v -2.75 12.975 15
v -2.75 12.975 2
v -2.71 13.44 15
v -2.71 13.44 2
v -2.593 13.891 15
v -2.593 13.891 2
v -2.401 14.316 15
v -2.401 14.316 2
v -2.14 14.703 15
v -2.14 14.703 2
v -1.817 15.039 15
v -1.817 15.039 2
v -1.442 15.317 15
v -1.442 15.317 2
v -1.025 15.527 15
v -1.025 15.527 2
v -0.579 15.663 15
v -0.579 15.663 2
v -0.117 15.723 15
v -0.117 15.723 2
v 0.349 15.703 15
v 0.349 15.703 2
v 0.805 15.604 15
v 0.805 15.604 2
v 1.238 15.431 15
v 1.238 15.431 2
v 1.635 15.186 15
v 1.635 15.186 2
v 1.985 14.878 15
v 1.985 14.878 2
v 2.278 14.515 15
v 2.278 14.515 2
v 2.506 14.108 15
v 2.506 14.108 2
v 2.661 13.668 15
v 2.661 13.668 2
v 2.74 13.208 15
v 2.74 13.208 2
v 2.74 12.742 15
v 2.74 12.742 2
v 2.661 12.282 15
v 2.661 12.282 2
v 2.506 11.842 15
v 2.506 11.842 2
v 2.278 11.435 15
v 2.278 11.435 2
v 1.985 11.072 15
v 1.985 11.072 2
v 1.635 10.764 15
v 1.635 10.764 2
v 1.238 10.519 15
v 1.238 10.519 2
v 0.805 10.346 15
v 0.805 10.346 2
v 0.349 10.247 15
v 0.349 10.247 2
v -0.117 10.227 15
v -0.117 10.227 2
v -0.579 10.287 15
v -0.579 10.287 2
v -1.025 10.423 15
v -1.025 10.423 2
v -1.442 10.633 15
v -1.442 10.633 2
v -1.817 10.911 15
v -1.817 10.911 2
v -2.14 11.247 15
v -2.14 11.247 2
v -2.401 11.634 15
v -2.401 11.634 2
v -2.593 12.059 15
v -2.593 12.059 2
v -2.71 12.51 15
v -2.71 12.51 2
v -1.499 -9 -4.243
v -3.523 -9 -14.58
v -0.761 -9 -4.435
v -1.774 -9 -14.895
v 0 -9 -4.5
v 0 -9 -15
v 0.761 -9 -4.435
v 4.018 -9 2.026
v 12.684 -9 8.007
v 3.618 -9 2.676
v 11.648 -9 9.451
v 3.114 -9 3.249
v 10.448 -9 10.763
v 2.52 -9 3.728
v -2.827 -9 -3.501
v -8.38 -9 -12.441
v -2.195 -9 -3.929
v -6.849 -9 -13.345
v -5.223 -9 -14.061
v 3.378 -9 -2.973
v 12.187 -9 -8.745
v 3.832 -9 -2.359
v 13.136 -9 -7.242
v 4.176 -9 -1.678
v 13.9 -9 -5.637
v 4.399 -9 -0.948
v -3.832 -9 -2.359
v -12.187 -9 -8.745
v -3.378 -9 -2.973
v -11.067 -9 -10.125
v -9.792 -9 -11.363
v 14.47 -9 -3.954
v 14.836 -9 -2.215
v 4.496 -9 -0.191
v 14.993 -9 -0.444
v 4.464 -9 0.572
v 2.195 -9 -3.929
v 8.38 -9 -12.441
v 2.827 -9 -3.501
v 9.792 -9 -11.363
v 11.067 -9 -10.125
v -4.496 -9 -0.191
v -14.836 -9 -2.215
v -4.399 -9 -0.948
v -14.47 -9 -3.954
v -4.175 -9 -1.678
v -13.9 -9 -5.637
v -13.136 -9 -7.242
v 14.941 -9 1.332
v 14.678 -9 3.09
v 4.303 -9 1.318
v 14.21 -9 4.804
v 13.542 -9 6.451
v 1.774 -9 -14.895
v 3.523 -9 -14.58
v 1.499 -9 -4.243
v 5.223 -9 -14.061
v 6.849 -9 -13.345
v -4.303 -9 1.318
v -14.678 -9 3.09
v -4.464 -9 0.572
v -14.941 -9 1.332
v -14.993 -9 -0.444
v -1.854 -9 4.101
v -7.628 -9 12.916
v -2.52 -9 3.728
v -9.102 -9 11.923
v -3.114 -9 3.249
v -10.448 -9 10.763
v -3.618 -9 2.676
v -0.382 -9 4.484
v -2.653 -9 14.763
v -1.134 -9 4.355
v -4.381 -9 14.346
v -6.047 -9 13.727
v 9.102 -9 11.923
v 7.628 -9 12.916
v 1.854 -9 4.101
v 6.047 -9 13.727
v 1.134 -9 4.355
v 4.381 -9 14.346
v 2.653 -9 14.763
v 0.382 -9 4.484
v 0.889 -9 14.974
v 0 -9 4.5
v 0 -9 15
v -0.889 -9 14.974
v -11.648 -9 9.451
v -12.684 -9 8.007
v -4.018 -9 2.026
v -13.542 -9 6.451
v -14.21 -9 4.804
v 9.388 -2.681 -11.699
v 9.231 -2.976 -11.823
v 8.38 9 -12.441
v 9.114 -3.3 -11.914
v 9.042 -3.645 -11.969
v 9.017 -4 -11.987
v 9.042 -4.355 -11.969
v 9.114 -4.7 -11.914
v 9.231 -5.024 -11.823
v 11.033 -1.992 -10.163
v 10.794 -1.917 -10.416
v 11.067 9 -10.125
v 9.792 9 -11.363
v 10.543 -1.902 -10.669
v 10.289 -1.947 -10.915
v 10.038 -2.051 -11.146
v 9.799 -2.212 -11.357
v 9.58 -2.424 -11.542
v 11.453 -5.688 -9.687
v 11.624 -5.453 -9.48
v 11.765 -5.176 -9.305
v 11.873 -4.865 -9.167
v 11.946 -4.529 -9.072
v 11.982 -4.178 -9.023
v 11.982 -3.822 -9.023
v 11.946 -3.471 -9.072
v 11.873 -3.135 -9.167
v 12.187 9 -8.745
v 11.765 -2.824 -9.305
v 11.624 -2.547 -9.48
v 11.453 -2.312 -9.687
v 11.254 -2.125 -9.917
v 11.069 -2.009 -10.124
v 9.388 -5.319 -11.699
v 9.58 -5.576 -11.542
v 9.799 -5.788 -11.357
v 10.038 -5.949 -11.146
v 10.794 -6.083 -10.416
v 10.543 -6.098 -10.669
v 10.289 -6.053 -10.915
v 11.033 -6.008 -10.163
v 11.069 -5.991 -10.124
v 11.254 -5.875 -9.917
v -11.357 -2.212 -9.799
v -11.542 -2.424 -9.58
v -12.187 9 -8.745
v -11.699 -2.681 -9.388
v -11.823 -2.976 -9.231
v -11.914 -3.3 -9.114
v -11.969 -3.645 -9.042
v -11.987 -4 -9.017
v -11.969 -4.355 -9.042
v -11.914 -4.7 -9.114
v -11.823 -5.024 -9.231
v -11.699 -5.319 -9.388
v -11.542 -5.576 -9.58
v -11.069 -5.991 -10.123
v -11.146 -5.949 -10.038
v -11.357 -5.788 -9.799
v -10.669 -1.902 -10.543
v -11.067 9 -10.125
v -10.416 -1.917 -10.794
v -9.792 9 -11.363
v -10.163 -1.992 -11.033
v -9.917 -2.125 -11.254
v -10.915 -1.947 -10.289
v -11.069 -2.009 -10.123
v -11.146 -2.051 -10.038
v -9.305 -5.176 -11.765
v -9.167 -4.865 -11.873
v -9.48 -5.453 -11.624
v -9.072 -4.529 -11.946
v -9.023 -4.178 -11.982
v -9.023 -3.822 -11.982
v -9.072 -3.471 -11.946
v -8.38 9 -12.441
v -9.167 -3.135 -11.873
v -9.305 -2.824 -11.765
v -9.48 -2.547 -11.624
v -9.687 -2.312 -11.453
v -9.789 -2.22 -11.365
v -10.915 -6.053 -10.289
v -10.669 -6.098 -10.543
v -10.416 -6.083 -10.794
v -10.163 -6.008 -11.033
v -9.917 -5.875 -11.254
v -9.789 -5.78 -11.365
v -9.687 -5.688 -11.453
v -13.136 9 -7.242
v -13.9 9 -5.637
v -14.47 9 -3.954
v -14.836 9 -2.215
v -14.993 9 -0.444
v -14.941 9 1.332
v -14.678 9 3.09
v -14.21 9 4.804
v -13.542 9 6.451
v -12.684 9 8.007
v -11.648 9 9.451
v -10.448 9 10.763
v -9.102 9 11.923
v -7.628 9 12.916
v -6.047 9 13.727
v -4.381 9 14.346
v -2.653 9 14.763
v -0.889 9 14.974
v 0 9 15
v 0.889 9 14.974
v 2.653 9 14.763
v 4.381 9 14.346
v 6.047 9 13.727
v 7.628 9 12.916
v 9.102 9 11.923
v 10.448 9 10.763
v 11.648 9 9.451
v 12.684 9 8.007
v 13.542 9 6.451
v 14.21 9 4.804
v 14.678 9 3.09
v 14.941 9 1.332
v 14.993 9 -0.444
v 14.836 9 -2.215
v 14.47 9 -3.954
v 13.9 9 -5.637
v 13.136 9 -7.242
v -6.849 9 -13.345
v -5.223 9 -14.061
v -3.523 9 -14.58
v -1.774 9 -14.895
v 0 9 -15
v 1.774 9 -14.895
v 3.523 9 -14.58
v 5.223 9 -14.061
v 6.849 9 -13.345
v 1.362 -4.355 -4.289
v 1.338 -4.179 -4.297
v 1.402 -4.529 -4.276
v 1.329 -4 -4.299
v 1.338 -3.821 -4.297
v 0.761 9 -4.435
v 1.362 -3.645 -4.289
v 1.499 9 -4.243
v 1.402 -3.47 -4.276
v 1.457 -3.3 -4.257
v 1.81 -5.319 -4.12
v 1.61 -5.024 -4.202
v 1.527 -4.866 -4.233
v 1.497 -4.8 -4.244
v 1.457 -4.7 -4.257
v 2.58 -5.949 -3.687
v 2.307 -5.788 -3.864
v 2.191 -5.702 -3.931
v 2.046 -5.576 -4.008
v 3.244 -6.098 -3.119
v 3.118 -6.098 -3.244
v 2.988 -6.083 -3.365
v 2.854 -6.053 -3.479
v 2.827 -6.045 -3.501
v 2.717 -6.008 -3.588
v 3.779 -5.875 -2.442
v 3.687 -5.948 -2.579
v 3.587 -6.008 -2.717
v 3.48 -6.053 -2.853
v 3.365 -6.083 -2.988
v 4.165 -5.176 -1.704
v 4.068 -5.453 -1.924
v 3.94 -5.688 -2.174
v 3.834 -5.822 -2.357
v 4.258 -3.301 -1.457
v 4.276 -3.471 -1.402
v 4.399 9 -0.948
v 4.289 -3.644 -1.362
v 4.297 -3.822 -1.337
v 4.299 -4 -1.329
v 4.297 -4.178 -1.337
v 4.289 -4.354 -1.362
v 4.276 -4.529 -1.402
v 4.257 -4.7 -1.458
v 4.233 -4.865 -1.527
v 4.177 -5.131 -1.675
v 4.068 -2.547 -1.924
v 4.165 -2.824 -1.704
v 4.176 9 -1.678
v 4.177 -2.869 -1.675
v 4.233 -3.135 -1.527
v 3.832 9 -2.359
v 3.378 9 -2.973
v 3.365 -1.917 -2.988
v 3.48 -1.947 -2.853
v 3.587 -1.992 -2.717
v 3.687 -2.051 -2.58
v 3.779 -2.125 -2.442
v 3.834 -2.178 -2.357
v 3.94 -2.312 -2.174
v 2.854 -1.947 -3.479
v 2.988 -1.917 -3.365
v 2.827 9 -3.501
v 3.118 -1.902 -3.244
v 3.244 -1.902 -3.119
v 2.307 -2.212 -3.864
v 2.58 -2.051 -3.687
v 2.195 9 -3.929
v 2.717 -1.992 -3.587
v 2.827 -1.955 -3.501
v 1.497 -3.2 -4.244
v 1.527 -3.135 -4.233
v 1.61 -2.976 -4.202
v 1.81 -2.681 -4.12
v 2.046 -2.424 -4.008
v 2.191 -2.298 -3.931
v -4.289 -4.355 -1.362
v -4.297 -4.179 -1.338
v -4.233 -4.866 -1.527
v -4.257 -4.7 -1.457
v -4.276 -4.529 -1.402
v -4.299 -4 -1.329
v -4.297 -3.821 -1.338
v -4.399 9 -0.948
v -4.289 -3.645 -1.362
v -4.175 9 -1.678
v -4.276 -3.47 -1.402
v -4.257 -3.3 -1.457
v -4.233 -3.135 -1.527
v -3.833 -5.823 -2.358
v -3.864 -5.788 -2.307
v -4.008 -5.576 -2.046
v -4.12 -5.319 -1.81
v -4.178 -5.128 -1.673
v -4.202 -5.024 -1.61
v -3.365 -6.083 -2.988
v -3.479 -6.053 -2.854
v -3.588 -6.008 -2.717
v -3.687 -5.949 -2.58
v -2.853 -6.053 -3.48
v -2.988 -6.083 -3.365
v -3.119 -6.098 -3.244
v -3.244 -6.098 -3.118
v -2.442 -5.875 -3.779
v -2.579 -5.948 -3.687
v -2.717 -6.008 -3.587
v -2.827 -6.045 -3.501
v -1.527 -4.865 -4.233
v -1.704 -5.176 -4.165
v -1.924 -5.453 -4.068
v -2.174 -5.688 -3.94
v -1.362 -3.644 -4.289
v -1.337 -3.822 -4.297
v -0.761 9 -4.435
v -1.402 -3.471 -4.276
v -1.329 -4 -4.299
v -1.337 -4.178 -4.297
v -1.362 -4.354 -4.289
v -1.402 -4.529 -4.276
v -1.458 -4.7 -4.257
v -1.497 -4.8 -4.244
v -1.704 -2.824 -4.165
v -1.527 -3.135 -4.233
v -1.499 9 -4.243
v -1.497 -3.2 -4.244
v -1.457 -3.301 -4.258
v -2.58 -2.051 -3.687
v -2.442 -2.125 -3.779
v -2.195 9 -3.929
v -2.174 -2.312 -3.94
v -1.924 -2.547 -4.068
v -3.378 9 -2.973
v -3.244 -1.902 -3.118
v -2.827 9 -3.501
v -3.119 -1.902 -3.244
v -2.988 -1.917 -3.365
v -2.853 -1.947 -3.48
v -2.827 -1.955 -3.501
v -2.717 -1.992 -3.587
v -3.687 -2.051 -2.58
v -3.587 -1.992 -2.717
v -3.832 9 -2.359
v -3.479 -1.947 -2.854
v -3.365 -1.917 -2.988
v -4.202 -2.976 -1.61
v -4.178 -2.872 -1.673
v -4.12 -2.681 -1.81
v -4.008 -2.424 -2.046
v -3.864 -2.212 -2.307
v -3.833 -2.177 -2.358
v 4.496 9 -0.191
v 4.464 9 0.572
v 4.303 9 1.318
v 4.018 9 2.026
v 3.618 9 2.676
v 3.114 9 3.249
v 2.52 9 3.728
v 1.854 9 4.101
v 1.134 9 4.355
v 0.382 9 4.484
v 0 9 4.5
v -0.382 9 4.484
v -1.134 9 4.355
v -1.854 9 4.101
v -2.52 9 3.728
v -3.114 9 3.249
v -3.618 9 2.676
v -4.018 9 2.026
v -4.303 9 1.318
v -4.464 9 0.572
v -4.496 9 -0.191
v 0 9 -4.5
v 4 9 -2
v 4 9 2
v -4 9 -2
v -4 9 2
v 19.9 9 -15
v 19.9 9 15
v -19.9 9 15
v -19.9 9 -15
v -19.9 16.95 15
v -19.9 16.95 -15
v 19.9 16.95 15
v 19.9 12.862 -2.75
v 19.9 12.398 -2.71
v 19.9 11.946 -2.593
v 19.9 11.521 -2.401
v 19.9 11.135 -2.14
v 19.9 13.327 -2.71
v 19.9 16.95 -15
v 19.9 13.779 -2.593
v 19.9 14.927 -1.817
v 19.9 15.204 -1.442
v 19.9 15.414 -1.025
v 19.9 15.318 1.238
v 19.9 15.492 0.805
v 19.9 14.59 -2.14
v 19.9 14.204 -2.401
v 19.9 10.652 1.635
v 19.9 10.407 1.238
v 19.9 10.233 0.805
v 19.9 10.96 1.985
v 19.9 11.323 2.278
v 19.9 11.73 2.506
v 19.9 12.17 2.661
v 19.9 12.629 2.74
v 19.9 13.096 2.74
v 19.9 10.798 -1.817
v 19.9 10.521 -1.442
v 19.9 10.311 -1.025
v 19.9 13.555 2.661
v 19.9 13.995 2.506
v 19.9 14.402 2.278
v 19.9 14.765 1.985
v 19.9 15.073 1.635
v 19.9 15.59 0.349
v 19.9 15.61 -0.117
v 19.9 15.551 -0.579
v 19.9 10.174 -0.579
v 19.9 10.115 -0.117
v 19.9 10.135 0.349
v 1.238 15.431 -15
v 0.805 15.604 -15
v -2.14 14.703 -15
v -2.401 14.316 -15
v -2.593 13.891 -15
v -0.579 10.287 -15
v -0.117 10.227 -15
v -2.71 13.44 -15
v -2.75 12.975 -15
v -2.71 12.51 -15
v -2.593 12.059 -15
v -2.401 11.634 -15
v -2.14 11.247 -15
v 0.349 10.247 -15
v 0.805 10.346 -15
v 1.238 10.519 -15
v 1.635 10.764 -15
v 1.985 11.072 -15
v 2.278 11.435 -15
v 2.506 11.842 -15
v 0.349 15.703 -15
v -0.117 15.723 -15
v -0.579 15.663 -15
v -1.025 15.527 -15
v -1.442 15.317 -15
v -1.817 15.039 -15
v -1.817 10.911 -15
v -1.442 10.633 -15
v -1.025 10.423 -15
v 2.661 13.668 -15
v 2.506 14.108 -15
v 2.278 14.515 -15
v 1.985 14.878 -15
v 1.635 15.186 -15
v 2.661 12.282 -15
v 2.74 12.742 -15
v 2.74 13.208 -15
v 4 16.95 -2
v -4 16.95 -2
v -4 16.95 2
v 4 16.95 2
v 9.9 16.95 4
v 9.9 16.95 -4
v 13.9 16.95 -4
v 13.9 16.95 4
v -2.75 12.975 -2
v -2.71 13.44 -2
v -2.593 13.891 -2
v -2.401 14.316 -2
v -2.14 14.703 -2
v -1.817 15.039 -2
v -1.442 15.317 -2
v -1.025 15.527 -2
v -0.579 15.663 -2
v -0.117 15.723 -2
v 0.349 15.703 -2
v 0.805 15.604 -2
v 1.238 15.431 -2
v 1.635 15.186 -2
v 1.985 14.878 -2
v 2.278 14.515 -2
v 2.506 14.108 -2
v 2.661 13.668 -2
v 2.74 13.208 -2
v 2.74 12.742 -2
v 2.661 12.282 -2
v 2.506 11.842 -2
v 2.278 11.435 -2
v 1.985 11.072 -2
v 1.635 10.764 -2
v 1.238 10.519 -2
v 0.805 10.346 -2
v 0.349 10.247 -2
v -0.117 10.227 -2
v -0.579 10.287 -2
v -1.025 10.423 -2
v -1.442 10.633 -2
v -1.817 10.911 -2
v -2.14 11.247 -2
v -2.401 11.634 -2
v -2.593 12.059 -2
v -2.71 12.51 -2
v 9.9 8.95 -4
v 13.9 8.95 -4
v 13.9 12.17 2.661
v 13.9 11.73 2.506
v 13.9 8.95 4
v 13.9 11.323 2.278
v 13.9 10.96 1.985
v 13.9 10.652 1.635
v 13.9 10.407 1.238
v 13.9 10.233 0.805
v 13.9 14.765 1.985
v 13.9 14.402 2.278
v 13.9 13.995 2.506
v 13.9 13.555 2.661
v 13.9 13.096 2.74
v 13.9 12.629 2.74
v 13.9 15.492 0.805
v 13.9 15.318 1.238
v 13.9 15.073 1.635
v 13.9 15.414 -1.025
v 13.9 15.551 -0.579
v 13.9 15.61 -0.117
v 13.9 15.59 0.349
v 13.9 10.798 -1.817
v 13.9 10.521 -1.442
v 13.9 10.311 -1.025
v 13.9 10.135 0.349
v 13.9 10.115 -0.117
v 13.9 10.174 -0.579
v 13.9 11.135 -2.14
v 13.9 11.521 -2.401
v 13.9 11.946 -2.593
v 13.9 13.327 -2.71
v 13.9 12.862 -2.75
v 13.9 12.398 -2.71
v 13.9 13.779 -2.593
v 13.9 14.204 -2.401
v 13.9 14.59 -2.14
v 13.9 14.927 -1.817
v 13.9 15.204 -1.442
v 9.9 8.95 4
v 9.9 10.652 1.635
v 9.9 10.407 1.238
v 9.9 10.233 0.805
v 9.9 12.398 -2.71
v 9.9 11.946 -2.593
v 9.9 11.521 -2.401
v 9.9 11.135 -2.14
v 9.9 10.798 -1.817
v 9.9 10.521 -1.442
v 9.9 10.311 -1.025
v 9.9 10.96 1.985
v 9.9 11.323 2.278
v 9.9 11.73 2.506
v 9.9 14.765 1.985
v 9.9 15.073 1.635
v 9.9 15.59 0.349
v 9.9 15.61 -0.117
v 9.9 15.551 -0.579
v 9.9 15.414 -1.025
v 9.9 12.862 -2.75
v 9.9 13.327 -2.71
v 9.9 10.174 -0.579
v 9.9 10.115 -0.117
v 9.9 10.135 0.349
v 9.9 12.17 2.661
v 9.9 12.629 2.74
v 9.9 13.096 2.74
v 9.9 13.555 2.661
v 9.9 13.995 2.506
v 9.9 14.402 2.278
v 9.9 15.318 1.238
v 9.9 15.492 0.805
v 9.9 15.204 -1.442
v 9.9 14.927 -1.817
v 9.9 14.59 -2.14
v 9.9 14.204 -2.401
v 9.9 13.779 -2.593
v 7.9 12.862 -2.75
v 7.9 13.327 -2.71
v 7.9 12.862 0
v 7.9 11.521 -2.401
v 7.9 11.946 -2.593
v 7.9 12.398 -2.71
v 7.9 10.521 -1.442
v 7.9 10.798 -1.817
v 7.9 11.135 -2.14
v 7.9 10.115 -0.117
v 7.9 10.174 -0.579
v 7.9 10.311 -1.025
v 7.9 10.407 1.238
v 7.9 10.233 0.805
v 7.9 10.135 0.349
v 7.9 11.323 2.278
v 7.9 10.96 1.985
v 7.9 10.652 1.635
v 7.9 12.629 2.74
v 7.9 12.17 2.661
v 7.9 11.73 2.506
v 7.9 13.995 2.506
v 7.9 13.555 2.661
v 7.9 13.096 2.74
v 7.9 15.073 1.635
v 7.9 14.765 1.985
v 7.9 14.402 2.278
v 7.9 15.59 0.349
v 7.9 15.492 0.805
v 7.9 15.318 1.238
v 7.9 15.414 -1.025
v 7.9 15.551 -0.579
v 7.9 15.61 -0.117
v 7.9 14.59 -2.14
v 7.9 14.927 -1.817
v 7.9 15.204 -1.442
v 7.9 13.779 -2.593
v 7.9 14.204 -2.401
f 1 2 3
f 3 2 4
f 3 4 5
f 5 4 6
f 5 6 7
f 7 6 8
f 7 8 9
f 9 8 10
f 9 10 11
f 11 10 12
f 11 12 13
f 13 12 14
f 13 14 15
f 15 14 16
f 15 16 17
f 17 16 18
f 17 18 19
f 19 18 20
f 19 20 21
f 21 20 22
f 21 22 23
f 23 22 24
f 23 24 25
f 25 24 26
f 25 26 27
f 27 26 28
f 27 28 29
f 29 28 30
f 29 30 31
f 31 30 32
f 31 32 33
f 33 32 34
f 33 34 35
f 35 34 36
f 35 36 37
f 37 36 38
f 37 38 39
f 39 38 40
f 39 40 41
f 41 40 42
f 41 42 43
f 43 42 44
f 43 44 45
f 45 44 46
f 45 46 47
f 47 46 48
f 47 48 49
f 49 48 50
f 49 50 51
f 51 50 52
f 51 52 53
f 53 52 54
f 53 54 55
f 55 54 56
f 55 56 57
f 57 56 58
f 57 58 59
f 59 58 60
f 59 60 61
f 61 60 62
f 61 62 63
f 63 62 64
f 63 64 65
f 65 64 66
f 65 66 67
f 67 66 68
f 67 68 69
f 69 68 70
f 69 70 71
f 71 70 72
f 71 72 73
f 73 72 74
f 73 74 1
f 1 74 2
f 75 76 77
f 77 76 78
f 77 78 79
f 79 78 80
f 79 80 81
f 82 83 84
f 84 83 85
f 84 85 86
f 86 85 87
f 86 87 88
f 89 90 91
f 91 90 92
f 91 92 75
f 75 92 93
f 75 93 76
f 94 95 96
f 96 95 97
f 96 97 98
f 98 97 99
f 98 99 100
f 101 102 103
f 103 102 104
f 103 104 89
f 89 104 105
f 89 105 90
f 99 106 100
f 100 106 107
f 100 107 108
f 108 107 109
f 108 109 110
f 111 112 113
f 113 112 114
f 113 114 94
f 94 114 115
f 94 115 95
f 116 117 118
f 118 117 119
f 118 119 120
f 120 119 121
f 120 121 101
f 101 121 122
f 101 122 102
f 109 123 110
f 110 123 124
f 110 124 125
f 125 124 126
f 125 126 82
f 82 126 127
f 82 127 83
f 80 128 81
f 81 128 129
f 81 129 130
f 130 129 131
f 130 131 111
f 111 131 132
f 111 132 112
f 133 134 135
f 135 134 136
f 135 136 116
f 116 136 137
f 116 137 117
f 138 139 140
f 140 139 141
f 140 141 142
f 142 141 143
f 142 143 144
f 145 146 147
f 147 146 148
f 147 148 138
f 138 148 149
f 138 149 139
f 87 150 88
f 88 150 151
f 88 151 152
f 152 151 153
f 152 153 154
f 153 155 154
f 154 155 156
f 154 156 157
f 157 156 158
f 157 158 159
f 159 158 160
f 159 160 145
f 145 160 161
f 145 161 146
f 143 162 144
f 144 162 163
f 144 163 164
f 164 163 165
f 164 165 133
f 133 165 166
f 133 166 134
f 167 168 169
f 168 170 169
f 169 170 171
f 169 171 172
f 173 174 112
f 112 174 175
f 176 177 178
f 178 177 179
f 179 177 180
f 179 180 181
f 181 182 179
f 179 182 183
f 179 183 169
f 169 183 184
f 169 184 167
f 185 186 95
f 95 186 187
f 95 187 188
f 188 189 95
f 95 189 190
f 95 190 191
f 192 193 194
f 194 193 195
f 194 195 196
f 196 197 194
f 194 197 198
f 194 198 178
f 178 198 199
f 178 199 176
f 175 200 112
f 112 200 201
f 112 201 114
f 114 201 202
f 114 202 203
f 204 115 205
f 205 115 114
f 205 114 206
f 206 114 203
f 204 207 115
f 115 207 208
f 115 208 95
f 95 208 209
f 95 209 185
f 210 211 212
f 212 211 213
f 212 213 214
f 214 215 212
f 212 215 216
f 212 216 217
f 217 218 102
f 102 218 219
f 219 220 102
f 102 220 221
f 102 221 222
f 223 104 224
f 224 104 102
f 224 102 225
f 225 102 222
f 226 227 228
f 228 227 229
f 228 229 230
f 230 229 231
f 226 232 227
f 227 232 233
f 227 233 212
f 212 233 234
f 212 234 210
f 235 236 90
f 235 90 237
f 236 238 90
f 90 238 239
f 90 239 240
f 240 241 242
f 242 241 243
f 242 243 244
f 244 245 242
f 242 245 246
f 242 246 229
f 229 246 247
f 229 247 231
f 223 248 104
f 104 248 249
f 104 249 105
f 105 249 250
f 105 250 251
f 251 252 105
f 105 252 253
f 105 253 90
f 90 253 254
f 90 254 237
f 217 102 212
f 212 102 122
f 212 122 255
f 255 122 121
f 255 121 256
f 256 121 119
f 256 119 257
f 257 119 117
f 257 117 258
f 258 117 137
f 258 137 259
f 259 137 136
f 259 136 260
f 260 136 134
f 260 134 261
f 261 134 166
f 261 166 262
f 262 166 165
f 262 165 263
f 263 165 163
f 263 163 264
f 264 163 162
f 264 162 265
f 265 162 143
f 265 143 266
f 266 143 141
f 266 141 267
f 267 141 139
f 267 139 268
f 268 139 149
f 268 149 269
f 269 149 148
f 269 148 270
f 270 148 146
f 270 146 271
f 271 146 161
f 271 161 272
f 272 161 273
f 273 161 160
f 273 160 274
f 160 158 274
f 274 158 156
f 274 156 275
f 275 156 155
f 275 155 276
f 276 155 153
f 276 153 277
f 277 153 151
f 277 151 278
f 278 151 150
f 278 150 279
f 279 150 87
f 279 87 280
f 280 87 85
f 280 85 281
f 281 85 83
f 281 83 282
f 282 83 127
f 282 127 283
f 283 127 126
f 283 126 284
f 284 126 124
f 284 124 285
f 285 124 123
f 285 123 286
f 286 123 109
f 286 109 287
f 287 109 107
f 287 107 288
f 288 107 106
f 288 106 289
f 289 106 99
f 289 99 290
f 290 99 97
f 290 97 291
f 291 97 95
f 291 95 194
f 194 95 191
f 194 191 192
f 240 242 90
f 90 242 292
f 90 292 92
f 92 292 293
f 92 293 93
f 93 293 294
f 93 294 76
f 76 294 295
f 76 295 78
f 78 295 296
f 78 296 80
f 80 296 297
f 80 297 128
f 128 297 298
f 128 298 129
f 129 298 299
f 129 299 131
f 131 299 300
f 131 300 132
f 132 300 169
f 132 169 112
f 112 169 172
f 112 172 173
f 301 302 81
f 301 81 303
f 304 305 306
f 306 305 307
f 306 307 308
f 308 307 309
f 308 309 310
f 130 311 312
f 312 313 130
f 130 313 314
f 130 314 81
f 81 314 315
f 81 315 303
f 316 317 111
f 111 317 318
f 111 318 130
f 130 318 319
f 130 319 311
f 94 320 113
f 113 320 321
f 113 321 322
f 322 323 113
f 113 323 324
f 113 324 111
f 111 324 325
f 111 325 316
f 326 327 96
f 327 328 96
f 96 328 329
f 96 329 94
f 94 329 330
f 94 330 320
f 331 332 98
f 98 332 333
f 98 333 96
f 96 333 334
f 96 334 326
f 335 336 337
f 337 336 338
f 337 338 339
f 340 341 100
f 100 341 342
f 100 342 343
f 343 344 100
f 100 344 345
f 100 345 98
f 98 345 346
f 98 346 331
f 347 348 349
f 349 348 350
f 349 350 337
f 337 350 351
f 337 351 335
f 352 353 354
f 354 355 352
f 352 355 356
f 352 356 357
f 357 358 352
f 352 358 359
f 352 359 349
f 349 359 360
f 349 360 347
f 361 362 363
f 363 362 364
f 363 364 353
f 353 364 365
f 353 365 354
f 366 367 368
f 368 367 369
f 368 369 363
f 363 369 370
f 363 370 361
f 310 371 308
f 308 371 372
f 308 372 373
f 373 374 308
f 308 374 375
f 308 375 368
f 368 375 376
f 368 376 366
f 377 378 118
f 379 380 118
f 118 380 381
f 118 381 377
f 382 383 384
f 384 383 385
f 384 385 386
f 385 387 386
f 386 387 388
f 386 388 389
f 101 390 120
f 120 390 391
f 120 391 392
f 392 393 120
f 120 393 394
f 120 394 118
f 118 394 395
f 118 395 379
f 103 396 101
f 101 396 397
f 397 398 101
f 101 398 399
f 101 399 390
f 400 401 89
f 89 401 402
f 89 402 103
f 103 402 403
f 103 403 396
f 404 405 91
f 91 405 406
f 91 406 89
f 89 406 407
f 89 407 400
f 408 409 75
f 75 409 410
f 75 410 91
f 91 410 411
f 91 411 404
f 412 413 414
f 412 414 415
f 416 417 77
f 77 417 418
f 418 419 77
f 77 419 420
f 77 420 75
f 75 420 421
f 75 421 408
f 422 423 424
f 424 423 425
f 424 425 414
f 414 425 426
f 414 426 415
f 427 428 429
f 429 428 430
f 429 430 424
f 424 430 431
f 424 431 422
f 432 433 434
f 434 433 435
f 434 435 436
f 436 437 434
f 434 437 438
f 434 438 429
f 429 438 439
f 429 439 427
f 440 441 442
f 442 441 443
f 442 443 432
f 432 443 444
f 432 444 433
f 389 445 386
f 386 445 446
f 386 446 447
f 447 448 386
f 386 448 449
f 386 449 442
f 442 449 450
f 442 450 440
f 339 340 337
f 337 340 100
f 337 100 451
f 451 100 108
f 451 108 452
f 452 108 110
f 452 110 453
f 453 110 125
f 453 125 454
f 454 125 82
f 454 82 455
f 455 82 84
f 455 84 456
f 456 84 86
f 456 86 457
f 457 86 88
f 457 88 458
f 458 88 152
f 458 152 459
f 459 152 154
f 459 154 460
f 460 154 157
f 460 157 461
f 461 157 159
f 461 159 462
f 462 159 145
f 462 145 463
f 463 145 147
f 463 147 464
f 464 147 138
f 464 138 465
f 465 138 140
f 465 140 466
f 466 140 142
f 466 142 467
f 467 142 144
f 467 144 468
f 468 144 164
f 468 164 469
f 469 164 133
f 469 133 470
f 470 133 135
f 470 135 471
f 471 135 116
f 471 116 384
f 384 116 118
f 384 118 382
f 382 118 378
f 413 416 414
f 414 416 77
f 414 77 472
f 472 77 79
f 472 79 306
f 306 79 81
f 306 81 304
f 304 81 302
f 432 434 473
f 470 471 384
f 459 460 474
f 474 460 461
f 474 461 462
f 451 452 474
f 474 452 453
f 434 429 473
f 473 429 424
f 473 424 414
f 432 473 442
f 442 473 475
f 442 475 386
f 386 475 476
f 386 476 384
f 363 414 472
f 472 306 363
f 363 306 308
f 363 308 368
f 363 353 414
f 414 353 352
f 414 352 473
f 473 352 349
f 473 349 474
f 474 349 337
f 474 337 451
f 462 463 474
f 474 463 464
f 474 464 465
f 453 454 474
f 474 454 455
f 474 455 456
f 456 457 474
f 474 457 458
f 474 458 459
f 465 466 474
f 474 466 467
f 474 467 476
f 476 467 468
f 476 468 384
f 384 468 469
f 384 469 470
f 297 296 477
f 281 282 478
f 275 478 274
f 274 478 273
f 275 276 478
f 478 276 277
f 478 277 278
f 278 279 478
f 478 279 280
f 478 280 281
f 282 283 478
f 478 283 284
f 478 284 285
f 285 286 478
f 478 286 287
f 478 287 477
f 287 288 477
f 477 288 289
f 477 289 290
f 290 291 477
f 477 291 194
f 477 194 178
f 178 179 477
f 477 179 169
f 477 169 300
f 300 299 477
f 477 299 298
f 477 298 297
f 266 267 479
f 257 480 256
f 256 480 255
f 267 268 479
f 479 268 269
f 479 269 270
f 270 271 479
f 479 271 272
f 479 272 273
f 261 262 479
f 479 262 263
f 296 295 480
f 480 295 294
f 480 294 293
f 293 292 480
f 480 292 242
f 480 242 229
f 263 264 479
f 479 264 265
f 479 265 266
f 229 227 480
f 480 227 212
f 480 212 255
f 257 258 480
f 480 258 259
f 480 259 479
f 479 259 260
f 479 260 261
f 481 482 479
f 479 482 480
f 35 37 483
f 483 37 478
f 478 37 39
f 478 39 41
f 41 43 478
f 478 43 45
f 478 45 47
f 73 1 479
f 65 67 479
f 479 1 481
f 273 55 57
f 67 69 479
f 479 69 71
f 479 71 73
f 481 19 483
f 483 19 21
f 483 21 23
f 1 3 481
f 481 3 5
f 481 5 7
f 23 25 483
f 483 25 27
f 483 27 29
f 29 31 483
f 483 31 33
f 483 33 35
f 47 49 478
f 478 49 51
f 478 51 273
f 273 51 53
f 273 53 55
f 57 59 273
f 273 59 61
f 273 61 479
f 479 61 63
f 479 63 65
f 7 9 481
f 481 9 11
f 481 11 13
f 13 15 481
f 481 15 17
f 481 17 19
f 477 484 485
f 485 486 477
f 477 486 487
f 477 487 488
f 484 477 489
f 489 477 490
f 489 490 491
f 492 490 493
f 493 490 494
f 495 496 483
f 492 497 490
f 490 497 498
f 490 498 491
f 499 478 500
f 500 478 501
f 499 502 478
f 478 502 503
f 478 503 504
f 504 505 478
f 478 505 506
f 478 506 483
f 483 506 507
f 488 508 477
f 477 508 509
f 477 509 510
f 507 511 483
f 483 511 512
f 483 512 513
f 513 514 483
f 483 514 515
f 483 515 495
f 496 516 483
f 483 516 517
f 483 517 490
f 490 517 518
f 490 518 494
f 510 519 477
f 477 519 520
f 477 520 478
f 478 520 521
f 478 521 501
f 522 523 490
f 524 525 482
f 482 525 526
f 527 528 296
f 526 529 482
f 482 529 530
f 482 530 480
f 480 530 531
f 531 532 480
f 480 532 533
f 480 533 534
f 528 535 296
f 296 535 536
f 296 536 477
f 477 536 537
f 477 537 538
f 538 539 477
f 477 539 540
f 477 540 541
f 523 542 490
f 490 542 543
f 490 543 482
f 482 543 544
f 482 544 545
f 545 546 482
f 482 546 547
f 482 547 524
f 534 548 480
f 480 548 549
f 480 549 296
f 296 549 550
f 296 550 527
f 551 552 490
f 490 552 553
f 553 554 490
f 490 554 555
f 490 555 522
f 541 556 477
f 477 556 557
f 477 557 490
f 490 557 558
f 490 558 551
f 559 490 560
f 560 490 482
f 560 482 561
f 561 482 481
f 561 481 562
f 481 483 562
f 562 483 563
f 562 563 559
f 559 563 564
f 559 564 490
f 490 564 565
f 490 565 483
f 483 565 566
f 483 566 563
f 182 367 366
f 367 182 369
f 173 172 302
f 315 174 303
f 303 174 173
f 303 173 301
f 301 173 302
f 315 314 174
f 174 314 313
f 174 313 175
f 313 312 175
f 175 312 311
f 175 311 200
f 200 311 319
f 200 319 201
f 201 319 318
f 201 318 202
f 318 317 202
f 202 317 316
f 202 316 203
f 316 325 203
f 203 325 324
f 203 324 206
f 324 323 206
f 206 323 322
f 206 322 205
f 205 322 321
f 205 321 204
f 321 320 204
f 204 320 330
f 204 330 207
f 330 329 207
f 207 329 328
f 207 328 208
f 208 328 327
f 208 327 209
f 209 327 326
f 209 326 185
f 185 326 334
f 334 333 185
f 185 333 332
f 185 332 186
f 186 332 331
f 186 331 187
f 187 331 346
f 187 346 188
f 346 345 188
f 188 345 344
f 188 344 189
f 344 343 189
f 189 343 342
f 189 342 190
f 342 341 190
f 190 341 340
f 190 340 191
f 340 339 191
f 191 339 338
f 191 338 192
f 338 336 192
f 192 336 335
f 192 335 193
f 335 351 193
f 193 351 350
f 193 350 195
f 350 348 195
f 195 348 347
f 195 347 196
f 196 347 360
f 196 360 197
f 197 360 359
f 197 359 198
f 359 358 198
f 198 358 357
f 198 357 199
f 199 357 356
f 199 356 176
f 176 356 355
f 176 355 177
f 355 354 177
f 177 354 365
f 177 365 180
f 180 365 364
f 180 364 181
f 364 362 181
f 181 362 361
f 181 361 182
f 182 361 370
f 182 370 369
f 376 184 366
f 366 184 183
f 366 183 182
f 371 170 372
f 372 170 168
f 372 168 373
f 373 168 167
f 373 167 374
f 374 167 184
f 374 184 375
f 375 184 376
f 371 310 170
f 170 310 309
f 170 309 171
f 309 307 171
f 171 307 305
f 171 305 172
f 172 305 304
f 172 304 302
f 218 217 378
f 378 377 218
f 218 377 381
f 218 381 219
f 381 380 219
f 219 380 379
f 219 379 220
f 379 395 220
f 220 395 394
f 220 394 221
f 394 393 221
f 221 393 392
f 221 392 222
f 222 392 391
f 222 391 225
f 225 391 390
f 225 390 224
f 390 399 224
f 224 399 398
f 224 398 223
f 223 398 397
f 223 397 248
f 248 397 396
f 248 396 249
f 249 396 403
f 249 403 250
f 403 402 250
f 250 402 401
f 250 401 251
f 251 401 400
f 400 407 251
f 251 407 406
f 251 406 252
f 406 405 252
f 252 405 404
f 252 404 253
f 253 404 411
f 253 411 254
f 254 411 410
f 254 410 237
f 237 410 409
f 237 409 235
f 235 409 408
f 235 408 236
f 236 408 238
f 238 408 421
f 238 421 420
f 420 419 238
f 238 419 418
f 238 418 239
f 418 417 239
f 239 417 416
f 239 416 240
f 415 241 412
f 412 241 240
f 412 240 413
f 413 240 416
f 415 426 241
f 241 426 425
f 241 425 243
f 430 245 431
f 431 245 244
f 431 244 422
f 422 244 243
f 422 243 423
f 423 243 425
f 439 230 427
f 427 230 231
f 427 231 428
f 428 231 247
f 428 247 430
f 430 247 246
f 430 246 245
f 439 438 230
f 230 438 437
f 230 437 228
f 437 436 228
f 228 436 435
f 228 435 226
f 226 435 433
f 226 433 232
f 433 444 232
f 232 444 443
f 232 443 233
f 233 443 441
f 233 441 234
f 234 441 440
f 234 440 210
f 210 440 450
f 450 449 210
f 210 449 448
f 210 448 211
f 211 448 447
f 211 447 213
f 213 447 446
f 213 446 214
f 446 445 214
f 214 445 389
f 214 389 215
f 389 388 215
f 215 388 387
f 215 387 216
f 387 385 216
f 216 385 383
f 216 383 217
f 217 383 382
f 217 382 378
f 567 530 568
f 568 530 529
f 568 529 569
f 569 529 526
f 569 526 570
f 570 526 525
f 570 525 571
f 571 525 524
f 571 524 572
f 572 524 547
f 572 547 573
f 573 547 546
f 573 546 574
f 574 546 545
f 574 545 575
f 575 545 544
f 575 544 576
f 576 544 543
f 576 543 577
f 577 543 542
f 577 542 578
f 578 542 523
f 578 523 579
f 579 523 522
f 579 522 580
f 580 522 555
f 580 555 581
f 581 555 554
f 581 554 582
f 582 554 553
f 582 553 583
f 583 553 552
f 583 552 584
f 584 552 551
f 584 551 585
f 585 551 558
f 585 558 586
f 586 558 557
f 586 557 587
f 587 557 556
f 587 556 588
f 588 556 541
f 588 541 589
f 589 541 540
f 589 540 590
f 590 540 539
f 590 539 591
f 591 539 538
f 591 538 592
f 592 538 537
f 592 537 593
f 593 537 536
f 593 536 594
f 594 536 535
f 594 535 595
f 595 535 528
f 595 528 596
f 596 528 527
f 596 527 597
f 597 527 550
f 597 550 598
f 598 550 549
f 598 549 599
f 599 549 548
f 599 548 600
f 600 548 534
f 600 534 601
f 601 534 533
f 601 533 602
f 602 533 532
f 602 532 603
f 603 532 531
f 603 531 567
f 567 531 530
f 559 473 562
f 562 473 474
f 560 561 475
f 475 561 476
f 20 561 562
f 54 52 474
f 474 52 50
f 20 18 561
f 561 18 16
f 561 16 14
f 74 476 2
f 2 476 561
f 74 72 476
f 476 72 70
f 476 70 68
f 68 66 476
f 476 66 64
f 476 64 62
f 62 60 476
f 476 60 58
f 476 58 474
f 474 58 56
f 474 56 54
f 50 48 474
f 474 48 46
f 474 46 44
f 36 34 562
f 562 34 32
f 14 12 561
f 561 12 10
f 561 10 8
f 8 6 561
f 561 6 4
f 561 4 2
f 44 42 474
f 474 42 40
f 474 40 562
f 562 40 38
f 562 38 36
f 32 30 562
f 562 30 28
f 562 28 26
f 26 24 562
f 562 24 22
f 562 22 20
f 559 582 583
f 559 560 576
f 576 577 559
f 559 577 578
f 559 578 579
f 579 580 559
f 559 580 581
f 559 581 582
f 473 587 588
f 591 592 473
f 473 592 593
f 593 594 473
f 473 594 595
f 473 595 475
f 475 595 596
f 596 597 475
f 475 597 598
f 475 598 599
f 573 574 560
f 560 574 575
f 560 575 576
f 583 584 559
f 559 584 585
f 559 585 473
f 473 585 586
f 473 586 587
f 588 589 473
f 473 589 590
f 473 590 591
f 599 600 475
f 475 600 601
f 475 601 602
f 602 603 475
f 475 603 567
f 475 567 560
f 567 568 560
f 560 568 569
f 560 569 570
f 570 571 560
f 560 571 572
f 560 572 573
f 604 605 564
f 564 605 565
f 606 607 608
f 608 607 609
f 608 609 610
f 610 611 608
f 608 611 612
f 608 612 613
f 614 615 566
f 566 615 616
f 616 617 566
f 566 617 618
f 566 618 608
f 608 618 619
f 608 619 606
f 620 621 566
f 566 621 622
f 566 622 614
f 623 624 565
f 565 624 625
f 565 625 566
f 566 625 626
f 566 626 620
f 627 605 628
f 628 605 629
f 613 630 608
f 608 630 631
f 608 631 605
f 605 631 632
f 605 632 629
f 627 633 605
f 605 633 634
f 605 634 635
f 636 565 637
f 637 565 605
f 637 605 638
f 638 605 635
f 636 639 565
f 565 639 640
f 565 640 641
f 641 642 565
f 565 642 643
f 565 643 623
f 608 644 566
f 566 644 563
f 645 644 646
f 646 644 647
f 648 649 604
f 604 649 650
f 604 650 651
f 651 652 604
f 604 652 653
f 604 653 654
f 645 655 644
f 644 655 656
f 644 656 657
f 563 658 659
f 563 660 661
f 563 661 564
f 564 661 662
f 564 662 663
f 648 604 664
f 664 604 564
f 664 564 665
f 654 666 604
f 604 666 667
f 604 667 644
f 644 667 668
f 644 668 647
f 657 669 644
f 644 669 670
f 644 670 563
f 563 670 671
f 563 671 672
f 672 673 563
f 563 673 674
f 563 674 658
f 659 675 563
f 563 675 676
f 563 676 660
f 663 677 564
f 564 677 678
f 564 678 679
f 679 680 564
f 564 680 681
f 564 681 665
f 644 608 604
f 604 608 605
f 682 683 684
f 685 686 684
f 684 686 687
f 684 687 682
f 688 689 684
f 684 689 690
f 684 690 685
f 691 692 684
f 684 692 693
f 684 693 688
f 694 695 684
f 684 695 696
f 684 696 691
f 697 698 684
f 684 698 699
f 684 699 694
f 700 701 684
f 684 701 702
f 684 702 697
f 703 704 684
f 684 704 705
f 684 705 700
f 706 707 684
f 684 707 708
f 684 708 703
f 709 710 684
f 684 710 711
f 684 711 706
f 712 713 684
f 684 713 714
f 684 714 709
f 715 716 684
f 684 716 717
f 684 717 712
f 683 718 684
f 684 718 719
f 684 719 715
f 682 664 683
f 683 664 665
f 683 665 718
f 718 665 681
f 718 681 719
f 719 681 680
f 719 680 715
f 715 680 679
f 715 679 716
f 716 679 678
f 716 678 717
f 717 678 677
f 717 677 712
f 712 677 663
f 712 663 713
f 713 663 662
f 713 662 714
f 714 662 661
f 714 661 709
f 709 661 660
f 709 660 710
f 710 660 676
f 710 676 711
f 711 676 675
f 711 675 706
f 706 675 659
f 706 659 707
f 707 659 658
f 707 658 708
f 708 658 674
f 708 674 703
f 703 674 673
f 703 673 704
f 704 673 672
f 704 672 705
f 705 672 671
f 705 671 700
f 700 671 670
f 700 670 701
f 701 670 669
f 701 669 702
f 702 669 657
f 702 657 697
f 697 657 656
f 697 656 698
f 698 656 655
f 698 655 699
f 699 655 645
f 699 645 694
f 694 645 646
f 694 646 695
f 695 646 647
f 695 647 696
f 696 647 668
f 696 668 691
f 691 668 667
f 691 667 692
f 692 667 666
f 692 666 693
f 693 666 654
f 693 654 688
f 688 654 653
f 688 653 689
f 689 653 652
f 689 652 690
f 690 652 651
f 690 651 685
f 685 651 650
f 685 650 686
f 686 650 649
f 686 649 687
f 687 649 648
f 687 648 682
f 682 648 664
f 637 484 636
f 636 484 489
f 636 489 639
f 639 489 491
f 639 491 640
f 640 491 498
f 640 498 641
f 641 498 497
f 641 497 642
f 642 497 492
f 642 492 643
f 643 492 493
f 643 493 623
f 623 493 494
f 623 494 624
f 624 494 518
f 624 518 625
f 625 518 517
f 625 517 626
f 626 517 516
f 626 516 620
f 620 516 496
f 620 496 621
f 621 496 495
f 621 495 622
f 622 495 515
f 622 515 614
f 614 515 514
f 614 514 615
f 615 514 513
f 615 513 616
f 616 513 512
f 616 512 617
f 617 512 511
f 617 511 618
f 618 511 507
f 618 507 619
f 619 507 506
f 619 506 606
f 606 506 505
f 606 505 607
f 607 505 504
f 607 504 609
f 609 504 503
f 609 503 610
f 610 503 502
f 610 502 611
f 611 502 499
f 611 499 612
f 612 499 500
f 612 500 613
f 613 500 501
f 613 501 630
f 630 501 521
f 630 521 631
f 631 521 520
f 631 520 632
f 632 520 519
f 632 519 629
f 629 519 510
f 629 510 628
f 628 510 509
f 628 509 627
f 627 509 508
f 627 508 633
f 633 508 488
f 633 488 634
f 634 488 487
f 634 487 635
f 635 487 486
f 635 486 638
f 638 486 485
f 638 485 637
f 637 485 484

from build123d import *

# Parameters (mm, degrees)
SKETCH1_R              = 15
SKETCH1_R_2            = 4.5
BOSS_EXTRUDE1_DEPTH    = 9
SKETCH2_W              = 39.8
SKETCH2_H              = 30
BOSS_EXTRUDE2_DEPTH    = 7.95
M5_TAPPED_HOLE1_REACH  = 45.286
M5_TAPPED_HOLE1_BORE_R = 2.1
M5_TAPPED_HOLE2_REACH  = 45.286
M5_TAPPED_HOLE2_BORE_R = 2.1
SKETCH3_R              = 2.75
CUT_EXTRUDE1_DEPTH     = 40.790859579
SKETCH35_W             = 8
SKETCH35_H             = 4
SKETCH35_W_2           = 4
SKETCH35_H_2           = 8
CUT_EXTRUDE4_DEPTH     = 8
SKETCH40_R             = 2.75
CUT_EXTRUDE5_DEPTH     = 12


with BuildPart() as part:
    # Sketch1 → Boss-Extrude1 (new, symmetric)
    with BuildSketch(Plane(origin=(0, 0, 0), x_dir=(1, 0, 0), z_dir=(0, 1, 0))):
        with Locations(Location((0, 0, 0), (0, 0, 270))):
            Circle(SKETCH1_R)
        with Locations(Location((0, 0, 0), (0, 0, 270))):
            Circle(SKETCH1_R_2, mode=Mode.SUBTRACT)
    extrude(amount=BOSS_EXTRUDE1_DEPTH, both=True)

    # Sketch2 → Boss-Extrude2 (add)
    with BuildSketch(Plane(origin=(0, 9, 0), x_dir=(1, 0, 0), z_dir=(0, 1, 0))):
        Rectangle(SKETCH2_W, SKETCH2_H)
    extrude(amount=BOSS_EXTRUDE2_DEPTH)

    # M5 Tapped Hole1 bore → M5 Tapped Hole1 (cut, up to next)
    with BuildSketch(Plane(origin=(10.606601718, 0, -10.606601718), x_dir=(-0.7071067811865476, 0, -0.7071067811865476), z_dir=(0.7071067811865476, 0, -0.7071067811865476)), mode=Mode.PRIVATE) as m5_tapped_hole1_sk1:
        with Locations((0, -4)):
            Circle(M5_TAPPED_HOLE1_BORE_R)
    m5_tapped_hole1_tool1 = extrude(m5_tapped_hole1_sk1.sketch, amount=-M5_TAPPED_HOLE1_REACH, mode=Mode.PRIVATE) & part.part
    add(m5_tapped_hole1_tool1.solids().sort_by_distance((10.606602, -4, -10.606602))[0], mode=Mode.SUBTRACT)

    # M5 Tapped Hole2 bore → M5 Tapped Hole2 (cut, up to next)
    with BuildSketch(Plane(origin=(-10.606601718, 0, -10.606601718), x_dir=(-0.7071067811865476, 0, 0.7071067811865476), z_dir=(-0.7071067811865476, 0, -0.7071067811865476)), mode=Mode.PRIVATE) as m5_tapped_hole2_sk1:
        with Locations((0, -4)):
            Circle(M5_TAPPED_HOLE2_BORE_R)
    m5_tapped_hole2_tool1 = extrude(m5_tapped_hole2_sk1.sketch, amount=-M5_TAPPED_HOLE2_REACH, mode=Mode.PRIVATE) & part.part
    add(m5_tapped_hole2_tool1.solids().sort_by_distance((-10.606602, -4, -10.606602))[0], mode=Mode.SUBTRACT)

    # Sketch3 → Cut-Extrude1 (cut, through all)
    with BuildSketch(Plane(origin=(0, 0, -15), x_dir=(-1, 0, 0), z_dir=(0, 0, -1))):
        with Locations((0, 12.975)):
            Circle(SKETCH3_R)
    extrude(amount=-CUT_EXTRUDE1_DEPTH, mode=Mode.SUBTRACT)

    # Sketch35 → Cut-Extrude4 (cut)
    with BuildSketch(Plane(origin=(0, 16.95, 0), x_dir=(1, 0, 0), z_dir=(0, 1, 0))):
        Rectangle(SKETCH35_W, SKETCH35_H)
        with Locations((11.9, 0)):
            Rectangle(SKETCH35_W_2, SKETCH35_H_2)
    extrude(amount=-CUT_EXTRUDE4_DEPTH, mode=Mode.SUBTRACT)

    # Sketch40 → Cut-Extrude5 (cut)
    with BuildSketch(Plane(origin=(19.9, 0, 0), x_dir=(0, 0, -1), z_dir=(1, 0, 0))):
        with Locations((0, 12.8625)):
            Circle(SKETCH40_R)
    extrude(amount=-CUT_EXTRUDE5_DEPTH, mode=Mode.SUBTRACT)


solid = part.part
